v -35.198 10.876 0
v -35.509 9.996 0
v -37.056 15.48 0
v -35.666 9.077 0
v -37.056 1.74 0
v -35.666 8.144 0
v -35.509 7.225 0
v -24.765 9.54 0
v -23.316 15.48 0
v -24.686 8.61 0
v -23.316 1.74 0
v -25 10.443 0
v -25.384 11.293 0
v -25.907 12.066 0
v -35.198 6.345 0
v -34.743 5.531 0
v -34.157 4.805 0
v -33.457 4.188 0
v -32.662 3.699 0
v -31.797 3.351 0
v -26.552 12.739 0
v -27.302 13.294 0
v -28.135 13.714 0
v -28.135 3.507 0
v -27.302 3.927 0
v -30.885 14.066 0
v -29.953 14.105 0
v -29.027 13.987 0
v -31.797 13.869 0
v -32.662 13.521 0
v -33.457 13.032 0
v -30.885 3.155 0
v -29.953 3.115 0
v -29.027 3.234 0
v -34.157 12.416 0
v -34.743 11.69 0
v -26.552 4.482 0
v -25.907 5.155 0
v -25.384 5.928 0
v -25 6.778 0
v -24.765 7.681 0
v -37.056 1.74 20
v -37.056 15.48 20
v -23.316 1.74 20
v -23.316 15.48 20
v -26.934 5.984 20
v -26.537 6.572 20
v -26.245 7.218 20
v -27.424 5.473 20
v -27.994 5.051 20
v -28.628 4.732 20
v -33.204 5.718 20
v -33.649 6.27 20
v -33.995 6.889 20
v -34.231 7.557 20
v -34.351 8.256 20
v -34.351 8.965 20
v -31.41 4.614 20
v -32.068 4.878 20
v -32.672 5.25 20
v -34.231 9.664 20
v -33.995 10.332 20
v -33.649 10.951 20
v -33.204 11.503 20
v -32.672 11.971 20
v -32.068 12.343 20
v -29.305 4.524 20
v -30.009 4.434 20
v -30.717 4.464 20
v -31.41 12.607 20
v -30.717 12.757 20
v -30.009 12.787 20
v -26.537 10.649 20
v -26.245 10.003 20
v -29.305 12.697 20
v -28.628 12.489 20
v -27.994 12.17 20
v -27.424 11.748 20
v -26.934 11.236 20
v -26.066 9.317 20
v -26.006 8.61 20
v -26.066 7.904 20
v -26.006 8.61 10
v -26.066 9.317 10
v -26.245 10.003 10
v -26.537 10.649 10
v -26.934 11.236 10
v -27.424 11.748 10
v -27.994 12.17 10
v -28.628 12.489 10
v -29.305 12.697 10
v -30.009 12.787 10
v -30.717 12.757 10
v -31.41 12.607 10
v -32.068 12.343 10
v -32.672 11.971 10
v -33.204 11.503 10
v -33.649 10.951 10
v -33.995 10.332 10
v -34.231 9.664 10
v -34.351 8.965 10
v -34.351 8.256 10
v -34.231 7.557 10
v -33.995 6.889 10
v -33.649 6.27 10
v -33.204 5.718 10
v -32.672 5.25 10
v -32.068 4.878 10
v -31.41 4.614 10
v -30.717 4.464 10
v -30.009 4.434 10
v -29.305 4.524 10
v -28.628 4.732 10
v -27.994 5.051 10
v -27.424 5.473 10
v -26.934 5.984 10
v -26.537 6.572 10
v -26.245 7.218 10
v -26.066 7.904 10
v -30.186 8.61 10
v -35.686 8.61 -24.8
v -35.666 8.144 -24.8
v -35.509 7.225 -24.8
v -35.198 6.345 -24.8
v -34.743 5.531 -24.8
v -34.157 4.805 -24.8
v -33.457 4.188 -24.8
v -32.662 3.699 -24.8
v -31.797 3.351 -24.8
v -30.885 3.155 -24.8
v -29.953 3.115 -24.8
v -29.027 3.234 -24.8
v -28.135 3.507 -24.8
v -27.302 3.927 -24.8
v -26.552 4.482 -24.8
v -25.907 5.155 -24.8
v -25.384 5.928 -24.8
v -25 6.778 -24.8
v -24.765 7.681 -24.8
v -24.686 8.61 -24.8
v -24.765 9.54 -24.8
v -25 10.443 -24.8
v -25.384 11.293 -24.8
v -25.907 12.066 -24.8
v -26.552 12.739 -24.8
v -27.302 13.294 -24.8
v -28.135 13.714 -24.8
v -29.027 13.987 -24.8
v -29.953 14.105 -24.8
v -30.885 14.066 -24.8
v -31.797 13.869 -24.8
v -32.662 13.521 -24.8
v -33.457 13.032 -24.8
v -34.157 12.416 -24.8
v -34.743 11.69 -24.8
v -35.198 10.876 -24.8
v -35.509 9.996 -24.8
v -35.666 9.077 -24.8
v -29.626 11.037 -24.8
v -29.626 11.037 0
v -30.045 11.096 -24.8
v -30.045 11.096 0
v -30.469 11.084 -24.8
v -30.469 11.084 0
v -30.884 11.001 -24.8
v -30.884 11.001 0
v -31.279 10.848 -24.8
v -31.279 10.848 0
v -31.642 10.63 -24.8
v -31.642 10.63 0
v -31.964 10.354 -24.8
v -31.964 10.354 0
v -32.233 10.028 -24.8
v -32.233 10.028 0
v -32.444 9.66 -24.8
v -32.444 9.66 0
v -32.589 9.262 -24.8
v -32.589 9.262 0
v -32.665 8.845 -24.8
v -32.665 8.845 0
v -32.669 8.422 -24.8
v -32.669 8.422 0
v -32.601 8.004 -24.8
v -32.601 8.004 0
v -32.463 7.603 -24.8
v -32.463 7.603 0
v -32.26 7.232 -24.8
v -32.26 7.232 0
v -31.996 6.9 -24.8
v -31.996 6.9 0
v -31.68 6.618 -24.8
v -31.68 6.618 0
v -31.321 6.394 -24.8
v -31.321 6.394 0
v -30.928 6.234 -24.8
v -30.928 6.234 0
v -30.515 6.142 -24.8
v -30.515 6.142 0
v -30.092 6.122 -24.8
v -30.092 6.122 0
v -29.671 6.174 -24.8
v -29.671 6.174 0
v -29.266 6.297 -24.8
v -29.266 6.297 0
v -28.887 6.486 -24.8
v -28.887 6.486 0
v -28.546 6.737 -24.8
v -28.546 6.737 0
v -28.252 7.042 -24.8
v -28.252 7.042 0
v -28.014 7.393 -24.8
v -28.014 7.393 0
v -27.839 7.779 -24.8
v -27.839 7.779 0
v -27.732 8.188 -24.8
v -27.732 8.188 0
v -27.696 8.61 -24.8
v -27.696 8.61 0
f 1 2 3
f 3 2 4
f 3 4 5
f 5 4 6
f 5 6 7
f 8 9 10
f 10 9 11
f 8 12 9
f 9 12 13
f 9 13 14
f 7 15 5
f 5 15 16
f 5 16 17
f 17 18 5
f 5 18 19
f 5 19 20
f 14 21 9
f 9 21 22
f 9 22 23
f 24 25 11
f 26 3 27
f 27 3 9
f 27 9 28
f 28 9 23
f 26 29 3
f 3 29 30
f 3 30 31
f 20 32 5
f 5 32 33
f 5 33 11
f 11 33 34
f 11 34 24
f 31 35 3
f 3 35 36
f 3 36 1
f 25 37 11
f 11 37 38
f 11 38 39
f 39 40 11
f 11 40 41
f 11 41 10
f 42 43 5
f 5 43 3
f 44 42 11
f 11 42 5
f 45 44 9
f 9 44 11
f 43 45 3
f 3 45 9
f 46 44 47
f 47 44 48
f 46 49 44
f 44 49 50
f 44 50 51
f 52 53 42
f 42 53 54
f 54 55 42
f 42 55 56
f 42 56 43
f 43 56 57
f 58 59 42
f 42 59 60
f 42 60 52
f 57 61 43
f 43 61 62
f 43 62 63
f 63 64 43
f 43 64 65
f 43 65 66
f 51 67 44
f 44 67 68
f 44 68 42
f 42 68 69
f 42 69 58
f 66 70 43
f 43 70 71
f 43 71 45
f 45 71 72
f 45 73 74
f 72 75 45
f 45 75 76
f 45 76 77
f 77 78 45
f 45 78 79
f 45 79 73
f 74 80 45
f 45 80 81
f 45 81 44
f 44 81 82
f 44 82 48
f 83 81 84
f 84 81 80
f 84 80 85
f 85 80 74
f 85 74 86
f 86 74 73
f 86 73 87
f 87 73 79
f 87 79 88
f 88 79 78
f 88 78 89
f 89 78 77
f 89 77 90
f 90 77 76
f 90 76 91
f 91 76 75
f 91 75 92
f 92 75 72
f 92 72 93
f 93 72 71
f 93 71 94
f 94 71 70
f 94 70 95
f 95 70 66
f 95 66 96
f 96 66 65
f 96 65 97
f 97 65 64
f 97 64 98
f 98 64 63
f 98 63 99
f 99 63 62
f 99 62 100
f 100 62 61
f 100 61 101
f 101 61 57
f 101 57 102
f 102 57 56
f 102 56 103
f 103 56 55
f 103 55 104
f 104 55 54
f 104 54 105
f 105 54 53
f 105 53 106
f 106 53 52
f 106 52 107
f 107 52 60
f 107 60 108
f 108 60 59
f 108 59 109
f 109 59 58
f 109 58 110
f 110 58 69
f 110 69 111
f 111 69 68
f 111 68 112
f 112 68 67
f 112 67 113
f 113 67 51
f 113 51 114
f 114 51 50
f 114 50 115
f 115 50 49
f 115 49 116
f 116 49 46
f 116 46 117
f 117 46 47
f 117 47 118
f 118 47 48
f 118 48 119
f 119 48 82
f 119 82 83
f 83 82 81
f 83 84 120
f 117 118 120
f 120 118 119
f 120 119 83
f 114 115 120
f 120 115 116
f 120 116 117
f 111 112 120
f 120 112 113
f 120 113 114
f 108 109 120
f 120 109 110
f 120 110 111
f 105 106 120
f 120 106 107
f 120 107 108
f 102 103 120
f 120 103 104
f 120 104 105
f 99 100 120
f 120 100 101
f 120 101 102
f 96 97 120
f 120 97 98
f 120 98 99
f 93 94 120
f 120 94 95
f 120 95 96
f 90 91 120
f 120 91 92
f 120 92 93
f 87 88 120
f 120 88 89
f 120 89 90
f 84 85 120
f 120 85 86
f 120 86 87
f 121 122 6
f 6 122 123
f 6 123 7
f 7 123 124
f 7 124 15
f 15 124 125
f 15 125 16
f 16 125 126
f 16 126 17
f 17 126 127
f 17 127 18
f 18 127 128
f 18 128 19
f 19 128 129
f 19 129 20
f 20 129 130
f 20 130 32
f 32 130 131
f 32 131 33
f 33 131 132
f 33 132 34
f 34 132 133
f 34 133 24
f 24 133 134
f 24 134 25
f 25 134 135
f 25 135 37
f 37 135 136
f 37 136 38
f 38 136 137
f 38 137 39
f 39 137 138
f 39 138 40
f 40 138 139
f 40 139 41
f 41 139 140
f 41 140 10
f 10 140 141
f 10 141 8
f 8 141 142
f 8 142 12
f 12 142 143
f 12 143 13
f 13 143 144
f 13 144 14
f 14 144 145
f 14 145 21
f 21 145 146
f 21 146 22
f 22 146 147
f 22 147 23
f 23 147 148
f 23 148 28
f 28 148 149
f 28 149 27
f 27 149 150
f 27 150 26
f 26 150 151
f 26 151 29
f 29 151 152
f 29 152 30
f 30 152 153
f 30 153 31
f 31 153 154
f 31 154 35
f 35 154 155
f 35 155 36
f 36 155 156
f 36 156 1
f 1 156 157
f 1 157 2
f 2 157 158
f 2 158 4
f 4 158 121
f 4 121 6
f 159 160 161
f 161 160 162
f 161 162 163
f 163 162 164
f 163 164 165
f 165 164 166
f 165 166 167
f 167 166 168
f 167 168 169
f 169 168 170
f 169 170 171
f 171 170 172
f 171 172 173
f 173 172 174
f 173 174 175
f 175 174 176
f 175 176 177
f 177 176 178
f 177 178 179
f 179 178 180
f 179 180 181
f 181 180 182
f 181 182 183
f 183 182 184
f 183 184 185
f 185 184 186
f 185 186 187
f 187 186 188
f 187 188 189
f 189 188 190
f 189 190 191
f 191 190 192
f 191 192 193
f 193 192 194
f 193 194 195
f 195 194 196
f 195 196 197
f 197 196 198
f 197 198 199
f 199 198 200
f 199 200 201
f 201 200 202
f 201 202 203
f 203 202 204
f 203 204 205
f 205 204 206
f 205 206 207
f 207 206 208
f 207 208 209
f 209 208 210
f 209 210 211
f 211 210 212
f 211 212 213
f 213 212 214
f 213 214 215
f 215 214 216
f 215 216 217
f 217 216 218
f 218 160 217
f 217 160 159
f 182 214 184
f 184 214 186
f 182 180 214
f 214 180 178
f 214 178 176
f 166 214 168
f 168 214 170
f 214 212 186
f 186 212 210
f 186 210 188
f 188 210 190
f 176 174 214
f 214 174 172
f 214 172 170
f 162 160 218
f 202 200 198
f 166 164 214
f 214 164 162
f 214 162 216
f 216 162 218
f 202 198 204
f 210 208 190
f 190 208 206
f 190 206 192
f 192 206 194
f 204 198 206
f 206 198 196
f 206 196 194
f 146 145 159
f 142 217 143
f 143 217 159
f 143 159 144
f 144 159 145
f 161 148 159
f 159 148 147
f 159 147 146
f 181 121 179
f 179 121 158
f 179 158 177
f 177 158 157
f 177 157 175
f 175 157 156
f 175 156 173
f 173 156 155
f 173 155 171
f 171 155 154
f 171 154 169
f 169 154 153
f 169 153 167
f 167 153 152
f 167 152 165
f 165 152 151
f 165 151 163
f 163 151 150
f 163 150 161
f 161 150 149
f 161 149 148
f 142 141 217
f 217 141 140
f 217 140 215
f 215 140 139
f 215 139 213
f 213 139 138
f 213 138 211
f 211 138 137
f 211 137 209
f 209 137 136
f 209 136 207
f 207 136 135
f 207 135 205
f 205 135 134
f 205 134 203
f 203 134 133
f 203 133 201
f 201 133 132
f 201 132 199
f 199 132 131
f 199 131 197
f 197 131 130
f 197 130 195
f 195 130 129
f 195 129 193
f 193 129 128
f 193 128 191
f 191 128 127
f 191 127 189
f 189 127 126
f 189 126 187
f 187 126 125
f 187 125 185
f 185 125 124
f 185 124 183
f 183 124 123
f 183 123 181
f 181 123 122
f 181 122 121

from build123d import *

# Parameters (mm, degrees)
ESQUISSE1_W             = 13.74
ESQUISSE1_H             = 13.74
BOSS_EXTRU_1_DEPTH      = 20
ESQUISSE3_R             = 4.18
ENL_V_MAT_EXTRU_2_DEPTH = 10
ESQUISSE2_R             = 2.49
BOSS_EXTRU_4_DEPTH      = 24.8
ENL_V_START             = -24.8
ENL_V_MAT_EXTRU_4_DEPTH = 24.8
ESQUISSE6_R             = 5.5
ESQUISSE6_R_2           = 2.49
BOSS_EXTRU_5_DEPTH      = 24.8


with BuildPart() as part:
    # Esquisse1 → Boss.-Extru.1 (new body)
    with BuildSketch(Plane.XY):
        with Locations((-30.186071131, 8.6104)):
            Rectangle(ESQUISSE1_W, ESQUISSE1_H)
    extrude(amount=BOSS_EXTRU_1_DEPTH)

    # Esquisse3 → Enlèv. mat.-Extru.2 (cut)
    with BuildSketch(Plane.XY.offset(20)):
        with Locations((-30.186071131, 8.6104)):
            Circle(ESQUISSE3_R)
    extrude(amount=-ENL_V_MAT_EXTRU_2_DEPTH, mode=Mode.SUBTRACT)

    # Esquisse2 → Boss.-Extru.4 (add)
    with BuildSketch(Plane(origin=(0, 0, 0), x_dir=(-1, 0, 0), z_dir=(0, 0, -1))):
        with Locations(Location((30.186071131, 8.6104, 0), (0, 0, 180))):
            Circle(ESQUISSE2_R)
    extrude(amount=BOSS_EXTRU_4_DEPTH)

    # Esquisse5 → Enlèv. mat.-Extru.4 (cut)
    with BuildSketch(Plane(origin=(0, 0, -24.8), x_dir=(-1, 0, 0), z_dir=(0, 0, -1)).offset(ENL_V_START)):
        with BuildLine():
            Line((27.696071131, 8.6104), (29.625790006, 11.036546134))
            ThreePointArc((29.625790006, 11.036546134), (32.134814315, 7.0604), (27.696071131, 8.6104))
        make_face()
    extrude(amount=ENL_V_MAT_EXTRU_4_DEPTH, mode=Mode.SUBTRACT)

    # Esquisse6 → Boss.-Extru.5 (add)
    with BuildSketch(Plane(origin=(0, 0, 0), x_dir=(-1, 0, 0), z_dir=(0, 0, -1))):
        with Locations(Location((30.186071131, 8.6104, 0), (0, 0, 180))):
            Circle(ESQUISSE6_R)
        with Locations((30.186071131, 8.6104)):
            Circle(ESQUISSE6_R_2, mode=Mode.SUBTRACT)
    extrude(amount=BOSS_EXTRU_5_DEPTH)


solid = part.part
